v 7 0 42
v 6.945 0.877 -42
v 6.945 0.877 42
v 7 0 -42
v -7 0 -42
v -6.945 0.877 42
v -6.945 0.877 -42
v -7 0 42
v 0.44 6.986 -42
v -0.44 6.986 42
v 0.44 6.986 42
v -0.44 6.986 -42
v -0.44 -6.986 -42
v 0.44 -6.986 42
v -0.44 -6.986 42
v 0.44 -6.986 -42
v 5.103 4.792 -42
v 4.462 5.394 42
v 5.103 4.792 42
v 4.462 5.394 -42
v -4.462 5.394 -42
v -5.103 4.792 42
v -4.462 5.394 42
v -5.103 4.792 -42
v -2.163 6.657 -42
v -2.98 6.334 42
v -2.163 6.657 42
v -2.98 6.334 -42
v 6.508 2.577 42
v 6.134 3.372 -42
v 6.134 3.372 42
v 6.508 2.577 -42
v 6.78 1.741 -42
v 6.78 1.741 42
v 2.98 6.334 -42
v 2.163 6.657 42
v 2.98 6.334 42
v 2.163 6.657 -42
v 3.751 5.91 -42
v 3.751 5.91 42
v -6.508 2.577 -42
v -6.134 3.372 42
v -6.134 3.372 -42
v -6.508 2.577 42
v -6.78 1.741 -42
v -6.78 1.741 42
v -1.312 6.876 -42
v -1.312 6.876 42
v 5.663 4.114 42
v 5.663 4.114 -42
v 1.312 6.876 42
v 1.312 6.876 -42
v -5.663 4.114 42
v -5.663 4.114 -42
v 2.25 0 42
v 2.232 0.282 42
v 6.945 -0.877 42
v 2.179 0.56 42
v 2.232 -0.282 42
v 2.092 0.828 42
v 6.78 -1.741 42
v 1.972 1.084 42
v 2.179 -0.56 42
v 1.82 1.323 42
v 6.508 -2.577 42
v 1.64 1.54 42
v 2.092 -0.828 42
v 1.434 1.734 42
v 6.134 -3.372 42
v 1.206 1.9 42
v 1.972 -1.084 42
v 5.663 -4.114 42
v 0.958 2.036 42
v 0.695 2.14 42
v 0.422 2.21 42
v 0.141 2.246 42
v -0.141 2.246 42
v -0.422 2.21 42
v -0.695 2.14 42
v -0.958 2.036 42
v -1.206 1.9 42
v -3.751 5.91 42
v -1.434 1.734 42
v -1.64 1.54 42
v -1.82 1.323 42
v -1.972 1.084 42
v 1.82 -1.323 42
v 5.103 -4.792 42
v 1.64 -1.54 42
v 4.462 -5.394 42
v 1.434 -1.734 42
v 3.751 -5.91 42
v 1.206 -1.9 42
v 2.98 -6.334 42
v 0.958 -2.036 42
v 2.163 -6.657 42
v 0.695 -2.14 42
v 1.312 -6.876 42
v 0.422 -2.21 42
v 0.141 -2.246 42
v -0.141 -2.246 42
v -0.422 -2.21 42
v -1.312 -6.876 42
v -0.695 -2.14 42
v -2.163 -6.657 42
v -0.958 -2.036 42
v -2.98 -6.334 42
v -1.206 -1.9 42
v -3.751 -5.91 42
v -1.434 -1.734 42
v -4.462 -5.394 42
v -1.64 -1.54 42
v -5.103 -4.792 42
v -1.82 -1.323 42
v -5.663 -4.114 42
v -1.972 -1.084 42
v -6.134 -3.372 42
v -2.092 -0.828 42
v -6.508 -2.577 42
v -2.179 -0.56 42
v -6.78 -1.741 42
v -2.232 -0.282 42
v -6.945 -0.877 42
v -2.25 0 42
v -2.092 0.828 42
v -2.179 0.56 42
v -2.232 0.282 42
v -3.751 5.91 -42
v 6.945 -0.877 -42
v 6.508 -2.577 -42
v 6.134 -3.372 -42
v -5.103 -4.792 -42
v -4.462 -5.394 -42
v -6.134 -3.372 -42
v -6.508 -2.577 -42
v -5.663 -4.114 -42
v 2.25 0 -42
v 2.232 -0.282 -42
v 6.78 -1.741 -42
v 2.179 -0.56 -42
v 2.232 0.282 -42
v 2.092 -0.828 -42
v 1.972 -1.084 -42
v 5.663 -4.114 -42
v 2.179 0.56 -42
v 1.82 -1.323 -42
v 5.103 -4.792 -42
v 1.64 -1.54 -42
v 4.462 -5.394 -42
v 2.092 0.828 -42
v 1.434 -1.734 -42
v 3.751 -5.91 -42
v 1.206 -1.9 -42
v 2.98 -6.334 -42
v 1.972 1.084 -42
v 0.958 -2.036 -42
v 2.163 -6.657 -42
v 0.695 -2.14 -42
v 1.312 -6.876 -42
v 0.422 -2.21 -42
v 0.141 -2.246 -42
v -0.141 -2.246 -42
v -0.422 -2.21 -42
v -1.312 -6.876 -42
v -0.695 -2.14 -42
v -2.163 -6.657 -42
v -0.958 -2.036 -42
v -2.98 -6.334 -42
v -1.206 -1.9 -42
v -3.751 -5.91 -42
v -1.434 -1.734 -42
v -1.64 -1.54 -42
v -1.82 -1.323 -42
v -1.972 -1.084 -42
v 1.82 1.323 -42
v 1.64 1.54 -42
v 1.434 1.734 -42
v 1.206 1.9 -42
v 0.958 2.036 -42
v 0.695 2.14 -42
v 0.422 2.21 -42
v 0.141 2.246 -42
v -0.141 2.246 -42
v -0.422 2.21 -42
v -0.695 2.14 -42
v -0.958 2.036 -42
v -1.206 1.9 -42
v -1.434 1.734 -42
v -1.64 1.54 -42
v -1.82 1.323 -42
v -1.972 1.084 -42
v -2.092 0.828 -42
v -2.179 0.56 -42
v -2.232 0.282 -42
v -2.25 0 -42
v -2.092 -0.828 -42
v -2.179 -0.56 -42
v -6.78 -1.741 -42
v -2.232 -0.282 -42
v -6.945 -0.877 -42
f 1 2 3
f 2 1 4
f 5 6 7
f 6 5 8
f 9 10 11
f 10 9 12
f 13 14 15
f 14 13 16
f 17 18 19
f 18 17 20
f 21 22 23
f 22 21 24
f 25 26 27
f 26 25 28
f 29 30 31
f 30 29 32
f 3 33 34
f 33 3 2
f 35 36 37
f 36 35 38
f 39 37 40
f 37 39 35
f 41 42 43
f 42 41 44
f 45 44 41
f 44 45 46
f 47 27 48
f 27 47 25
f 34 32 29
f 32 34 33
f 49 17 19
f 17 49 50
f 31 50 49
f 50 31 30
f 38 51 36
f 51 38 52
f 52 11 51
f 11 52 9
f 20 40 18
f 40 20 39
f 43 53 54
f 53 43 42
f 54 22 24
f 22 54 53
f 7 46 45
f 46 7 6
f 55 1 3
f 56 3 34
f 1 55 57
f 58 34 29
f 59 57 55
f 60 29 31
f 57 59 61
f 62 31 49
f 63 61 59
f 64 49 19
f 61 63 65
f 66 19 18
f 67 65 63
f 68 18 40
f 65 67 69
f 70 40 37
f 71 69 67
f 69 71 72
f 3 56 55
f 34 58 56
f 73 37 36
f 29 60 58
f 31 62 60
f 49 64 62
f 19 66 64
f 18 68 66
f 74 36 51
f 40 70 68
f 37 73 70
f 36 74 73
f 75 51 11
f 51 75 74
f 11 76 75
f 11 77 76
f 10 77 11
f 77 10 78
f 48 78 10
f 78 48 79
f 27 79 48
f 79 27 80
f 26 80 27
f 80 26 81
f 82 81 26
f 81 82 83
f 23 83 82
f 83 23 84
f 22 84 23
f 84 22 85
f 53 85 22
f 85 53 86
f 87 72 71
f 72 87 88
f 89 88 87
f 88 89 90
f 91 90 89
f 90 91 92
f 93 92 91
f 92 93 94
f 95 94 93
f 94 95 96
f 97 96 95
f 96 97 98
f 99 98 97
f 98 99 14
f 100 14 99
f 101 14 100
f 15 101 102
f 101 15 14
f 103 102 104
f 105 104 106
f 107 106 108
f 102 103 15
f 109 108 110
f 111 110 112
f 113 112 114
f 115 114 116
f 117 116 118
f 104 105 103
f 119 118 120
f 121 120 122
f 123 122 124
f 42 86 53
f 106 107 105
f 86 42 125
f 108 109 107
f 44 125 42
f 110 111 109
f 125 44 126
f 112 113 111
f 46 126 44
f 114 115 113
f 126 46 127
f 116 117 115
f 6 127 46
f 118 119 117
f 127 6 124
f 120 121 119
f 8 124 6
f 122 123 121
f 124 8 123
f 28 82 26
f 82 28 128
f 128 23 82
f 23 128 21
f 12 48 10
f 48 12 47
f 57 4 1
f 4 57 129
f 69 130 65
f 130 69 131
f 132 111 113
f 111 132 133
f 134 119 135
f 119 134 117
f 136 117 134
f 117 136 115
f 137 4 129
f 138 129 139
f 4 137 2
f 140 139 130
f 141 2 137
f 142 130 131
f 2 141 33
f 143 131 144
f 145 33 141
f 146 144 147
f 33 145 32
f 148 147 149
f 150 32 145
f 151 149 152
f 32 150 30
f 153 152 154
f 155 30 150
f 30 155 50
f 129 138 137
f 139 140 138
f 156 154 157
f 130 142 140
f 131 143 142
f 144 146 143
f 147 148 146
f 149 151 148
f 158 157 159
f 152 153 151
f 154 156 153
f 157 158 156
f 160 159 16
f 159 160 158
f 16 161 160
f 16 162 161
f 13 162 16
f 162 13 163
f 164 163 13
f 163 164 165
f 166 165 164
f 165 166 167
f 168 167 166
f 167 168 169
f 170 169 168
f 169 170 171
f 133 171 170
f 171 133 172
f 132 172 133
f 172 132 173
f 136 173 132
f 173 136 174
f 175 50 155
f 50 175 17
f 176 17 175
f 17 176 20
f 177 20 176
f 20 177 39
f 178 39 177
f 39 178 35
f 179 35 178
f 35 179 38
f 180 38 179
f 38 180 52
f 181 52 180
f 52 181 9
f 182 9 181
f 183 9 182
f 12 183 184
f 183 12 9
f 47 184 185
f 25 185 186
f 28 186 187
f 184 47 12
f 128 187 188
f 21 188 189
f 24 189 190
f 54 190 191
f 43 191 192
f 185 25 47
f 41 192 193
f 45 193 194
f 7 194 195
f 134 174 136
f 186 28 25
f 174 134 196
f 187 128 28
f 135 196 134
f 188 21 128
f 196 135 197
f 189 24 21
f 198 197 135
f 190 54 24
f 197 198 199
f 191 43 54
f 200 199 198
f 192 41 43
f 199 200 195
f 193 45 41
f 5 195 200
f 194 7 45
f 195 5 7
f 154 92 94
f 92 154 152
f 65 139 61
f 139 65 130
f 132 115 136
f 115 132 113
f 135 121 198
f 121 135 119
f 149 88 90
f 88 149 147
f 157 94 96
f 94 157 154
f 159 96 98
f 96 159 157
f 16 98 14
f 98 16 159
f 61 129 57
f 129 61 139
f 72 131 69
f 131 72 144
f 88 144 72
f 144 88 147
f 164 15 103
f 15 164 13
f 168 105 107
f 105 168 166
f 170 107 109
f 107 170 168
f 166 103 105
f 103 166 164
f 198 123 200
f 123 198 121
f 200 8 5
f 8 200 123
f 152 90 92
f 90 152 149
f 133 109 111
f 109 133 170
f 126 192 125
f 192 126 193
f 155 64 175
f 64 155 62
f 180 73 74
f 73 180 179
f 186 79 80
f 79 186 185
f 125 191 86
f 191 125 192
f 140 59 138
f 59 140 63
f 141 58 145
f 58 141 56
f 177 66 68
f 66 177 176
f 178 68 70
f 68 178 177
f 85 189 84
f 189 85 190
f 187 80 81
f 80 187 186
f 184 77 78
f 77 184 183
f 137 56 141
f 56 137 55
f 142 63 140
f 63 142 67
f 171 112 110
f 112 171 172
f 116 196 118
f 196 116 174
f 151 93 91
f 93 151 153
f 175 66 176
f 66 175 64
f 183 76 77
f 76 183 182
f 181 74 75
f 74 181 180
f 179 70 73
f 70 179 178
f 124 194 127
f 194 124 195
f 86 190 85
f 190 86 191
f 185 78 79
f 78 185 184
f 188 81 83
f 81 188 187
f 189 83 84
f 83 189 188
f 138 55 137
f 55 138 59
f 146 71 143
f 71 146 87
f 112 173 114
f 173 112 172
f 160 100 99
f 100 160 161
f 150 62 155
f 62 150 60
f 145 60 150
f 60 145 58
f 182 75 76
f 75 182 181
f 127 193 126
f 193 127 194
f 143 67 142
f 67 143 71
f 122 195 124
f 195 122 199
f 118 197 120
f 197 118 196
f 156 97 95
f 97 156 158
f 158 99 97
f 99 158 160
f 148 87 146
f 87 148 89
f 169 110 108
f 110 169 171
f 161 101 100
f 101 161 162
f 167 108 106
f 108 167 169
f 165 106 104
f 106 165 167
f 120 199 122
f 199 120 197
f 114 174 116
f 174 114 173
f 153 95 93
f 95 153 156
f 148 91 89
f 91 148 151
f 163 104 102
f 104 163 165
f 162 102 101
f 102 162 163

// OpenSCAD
$fn = 50;


difference() {
	union() {
		translate(v = [0, 0, -42.0000000000]) {
			cylinder(h = 84, r = 7.0000000000);
		}
	}
	union() {
		translate(v = [0, 0, -100.0000000000]) {
			cylinder(h = 200, r = 2.2500000000);
		}
	}
}
